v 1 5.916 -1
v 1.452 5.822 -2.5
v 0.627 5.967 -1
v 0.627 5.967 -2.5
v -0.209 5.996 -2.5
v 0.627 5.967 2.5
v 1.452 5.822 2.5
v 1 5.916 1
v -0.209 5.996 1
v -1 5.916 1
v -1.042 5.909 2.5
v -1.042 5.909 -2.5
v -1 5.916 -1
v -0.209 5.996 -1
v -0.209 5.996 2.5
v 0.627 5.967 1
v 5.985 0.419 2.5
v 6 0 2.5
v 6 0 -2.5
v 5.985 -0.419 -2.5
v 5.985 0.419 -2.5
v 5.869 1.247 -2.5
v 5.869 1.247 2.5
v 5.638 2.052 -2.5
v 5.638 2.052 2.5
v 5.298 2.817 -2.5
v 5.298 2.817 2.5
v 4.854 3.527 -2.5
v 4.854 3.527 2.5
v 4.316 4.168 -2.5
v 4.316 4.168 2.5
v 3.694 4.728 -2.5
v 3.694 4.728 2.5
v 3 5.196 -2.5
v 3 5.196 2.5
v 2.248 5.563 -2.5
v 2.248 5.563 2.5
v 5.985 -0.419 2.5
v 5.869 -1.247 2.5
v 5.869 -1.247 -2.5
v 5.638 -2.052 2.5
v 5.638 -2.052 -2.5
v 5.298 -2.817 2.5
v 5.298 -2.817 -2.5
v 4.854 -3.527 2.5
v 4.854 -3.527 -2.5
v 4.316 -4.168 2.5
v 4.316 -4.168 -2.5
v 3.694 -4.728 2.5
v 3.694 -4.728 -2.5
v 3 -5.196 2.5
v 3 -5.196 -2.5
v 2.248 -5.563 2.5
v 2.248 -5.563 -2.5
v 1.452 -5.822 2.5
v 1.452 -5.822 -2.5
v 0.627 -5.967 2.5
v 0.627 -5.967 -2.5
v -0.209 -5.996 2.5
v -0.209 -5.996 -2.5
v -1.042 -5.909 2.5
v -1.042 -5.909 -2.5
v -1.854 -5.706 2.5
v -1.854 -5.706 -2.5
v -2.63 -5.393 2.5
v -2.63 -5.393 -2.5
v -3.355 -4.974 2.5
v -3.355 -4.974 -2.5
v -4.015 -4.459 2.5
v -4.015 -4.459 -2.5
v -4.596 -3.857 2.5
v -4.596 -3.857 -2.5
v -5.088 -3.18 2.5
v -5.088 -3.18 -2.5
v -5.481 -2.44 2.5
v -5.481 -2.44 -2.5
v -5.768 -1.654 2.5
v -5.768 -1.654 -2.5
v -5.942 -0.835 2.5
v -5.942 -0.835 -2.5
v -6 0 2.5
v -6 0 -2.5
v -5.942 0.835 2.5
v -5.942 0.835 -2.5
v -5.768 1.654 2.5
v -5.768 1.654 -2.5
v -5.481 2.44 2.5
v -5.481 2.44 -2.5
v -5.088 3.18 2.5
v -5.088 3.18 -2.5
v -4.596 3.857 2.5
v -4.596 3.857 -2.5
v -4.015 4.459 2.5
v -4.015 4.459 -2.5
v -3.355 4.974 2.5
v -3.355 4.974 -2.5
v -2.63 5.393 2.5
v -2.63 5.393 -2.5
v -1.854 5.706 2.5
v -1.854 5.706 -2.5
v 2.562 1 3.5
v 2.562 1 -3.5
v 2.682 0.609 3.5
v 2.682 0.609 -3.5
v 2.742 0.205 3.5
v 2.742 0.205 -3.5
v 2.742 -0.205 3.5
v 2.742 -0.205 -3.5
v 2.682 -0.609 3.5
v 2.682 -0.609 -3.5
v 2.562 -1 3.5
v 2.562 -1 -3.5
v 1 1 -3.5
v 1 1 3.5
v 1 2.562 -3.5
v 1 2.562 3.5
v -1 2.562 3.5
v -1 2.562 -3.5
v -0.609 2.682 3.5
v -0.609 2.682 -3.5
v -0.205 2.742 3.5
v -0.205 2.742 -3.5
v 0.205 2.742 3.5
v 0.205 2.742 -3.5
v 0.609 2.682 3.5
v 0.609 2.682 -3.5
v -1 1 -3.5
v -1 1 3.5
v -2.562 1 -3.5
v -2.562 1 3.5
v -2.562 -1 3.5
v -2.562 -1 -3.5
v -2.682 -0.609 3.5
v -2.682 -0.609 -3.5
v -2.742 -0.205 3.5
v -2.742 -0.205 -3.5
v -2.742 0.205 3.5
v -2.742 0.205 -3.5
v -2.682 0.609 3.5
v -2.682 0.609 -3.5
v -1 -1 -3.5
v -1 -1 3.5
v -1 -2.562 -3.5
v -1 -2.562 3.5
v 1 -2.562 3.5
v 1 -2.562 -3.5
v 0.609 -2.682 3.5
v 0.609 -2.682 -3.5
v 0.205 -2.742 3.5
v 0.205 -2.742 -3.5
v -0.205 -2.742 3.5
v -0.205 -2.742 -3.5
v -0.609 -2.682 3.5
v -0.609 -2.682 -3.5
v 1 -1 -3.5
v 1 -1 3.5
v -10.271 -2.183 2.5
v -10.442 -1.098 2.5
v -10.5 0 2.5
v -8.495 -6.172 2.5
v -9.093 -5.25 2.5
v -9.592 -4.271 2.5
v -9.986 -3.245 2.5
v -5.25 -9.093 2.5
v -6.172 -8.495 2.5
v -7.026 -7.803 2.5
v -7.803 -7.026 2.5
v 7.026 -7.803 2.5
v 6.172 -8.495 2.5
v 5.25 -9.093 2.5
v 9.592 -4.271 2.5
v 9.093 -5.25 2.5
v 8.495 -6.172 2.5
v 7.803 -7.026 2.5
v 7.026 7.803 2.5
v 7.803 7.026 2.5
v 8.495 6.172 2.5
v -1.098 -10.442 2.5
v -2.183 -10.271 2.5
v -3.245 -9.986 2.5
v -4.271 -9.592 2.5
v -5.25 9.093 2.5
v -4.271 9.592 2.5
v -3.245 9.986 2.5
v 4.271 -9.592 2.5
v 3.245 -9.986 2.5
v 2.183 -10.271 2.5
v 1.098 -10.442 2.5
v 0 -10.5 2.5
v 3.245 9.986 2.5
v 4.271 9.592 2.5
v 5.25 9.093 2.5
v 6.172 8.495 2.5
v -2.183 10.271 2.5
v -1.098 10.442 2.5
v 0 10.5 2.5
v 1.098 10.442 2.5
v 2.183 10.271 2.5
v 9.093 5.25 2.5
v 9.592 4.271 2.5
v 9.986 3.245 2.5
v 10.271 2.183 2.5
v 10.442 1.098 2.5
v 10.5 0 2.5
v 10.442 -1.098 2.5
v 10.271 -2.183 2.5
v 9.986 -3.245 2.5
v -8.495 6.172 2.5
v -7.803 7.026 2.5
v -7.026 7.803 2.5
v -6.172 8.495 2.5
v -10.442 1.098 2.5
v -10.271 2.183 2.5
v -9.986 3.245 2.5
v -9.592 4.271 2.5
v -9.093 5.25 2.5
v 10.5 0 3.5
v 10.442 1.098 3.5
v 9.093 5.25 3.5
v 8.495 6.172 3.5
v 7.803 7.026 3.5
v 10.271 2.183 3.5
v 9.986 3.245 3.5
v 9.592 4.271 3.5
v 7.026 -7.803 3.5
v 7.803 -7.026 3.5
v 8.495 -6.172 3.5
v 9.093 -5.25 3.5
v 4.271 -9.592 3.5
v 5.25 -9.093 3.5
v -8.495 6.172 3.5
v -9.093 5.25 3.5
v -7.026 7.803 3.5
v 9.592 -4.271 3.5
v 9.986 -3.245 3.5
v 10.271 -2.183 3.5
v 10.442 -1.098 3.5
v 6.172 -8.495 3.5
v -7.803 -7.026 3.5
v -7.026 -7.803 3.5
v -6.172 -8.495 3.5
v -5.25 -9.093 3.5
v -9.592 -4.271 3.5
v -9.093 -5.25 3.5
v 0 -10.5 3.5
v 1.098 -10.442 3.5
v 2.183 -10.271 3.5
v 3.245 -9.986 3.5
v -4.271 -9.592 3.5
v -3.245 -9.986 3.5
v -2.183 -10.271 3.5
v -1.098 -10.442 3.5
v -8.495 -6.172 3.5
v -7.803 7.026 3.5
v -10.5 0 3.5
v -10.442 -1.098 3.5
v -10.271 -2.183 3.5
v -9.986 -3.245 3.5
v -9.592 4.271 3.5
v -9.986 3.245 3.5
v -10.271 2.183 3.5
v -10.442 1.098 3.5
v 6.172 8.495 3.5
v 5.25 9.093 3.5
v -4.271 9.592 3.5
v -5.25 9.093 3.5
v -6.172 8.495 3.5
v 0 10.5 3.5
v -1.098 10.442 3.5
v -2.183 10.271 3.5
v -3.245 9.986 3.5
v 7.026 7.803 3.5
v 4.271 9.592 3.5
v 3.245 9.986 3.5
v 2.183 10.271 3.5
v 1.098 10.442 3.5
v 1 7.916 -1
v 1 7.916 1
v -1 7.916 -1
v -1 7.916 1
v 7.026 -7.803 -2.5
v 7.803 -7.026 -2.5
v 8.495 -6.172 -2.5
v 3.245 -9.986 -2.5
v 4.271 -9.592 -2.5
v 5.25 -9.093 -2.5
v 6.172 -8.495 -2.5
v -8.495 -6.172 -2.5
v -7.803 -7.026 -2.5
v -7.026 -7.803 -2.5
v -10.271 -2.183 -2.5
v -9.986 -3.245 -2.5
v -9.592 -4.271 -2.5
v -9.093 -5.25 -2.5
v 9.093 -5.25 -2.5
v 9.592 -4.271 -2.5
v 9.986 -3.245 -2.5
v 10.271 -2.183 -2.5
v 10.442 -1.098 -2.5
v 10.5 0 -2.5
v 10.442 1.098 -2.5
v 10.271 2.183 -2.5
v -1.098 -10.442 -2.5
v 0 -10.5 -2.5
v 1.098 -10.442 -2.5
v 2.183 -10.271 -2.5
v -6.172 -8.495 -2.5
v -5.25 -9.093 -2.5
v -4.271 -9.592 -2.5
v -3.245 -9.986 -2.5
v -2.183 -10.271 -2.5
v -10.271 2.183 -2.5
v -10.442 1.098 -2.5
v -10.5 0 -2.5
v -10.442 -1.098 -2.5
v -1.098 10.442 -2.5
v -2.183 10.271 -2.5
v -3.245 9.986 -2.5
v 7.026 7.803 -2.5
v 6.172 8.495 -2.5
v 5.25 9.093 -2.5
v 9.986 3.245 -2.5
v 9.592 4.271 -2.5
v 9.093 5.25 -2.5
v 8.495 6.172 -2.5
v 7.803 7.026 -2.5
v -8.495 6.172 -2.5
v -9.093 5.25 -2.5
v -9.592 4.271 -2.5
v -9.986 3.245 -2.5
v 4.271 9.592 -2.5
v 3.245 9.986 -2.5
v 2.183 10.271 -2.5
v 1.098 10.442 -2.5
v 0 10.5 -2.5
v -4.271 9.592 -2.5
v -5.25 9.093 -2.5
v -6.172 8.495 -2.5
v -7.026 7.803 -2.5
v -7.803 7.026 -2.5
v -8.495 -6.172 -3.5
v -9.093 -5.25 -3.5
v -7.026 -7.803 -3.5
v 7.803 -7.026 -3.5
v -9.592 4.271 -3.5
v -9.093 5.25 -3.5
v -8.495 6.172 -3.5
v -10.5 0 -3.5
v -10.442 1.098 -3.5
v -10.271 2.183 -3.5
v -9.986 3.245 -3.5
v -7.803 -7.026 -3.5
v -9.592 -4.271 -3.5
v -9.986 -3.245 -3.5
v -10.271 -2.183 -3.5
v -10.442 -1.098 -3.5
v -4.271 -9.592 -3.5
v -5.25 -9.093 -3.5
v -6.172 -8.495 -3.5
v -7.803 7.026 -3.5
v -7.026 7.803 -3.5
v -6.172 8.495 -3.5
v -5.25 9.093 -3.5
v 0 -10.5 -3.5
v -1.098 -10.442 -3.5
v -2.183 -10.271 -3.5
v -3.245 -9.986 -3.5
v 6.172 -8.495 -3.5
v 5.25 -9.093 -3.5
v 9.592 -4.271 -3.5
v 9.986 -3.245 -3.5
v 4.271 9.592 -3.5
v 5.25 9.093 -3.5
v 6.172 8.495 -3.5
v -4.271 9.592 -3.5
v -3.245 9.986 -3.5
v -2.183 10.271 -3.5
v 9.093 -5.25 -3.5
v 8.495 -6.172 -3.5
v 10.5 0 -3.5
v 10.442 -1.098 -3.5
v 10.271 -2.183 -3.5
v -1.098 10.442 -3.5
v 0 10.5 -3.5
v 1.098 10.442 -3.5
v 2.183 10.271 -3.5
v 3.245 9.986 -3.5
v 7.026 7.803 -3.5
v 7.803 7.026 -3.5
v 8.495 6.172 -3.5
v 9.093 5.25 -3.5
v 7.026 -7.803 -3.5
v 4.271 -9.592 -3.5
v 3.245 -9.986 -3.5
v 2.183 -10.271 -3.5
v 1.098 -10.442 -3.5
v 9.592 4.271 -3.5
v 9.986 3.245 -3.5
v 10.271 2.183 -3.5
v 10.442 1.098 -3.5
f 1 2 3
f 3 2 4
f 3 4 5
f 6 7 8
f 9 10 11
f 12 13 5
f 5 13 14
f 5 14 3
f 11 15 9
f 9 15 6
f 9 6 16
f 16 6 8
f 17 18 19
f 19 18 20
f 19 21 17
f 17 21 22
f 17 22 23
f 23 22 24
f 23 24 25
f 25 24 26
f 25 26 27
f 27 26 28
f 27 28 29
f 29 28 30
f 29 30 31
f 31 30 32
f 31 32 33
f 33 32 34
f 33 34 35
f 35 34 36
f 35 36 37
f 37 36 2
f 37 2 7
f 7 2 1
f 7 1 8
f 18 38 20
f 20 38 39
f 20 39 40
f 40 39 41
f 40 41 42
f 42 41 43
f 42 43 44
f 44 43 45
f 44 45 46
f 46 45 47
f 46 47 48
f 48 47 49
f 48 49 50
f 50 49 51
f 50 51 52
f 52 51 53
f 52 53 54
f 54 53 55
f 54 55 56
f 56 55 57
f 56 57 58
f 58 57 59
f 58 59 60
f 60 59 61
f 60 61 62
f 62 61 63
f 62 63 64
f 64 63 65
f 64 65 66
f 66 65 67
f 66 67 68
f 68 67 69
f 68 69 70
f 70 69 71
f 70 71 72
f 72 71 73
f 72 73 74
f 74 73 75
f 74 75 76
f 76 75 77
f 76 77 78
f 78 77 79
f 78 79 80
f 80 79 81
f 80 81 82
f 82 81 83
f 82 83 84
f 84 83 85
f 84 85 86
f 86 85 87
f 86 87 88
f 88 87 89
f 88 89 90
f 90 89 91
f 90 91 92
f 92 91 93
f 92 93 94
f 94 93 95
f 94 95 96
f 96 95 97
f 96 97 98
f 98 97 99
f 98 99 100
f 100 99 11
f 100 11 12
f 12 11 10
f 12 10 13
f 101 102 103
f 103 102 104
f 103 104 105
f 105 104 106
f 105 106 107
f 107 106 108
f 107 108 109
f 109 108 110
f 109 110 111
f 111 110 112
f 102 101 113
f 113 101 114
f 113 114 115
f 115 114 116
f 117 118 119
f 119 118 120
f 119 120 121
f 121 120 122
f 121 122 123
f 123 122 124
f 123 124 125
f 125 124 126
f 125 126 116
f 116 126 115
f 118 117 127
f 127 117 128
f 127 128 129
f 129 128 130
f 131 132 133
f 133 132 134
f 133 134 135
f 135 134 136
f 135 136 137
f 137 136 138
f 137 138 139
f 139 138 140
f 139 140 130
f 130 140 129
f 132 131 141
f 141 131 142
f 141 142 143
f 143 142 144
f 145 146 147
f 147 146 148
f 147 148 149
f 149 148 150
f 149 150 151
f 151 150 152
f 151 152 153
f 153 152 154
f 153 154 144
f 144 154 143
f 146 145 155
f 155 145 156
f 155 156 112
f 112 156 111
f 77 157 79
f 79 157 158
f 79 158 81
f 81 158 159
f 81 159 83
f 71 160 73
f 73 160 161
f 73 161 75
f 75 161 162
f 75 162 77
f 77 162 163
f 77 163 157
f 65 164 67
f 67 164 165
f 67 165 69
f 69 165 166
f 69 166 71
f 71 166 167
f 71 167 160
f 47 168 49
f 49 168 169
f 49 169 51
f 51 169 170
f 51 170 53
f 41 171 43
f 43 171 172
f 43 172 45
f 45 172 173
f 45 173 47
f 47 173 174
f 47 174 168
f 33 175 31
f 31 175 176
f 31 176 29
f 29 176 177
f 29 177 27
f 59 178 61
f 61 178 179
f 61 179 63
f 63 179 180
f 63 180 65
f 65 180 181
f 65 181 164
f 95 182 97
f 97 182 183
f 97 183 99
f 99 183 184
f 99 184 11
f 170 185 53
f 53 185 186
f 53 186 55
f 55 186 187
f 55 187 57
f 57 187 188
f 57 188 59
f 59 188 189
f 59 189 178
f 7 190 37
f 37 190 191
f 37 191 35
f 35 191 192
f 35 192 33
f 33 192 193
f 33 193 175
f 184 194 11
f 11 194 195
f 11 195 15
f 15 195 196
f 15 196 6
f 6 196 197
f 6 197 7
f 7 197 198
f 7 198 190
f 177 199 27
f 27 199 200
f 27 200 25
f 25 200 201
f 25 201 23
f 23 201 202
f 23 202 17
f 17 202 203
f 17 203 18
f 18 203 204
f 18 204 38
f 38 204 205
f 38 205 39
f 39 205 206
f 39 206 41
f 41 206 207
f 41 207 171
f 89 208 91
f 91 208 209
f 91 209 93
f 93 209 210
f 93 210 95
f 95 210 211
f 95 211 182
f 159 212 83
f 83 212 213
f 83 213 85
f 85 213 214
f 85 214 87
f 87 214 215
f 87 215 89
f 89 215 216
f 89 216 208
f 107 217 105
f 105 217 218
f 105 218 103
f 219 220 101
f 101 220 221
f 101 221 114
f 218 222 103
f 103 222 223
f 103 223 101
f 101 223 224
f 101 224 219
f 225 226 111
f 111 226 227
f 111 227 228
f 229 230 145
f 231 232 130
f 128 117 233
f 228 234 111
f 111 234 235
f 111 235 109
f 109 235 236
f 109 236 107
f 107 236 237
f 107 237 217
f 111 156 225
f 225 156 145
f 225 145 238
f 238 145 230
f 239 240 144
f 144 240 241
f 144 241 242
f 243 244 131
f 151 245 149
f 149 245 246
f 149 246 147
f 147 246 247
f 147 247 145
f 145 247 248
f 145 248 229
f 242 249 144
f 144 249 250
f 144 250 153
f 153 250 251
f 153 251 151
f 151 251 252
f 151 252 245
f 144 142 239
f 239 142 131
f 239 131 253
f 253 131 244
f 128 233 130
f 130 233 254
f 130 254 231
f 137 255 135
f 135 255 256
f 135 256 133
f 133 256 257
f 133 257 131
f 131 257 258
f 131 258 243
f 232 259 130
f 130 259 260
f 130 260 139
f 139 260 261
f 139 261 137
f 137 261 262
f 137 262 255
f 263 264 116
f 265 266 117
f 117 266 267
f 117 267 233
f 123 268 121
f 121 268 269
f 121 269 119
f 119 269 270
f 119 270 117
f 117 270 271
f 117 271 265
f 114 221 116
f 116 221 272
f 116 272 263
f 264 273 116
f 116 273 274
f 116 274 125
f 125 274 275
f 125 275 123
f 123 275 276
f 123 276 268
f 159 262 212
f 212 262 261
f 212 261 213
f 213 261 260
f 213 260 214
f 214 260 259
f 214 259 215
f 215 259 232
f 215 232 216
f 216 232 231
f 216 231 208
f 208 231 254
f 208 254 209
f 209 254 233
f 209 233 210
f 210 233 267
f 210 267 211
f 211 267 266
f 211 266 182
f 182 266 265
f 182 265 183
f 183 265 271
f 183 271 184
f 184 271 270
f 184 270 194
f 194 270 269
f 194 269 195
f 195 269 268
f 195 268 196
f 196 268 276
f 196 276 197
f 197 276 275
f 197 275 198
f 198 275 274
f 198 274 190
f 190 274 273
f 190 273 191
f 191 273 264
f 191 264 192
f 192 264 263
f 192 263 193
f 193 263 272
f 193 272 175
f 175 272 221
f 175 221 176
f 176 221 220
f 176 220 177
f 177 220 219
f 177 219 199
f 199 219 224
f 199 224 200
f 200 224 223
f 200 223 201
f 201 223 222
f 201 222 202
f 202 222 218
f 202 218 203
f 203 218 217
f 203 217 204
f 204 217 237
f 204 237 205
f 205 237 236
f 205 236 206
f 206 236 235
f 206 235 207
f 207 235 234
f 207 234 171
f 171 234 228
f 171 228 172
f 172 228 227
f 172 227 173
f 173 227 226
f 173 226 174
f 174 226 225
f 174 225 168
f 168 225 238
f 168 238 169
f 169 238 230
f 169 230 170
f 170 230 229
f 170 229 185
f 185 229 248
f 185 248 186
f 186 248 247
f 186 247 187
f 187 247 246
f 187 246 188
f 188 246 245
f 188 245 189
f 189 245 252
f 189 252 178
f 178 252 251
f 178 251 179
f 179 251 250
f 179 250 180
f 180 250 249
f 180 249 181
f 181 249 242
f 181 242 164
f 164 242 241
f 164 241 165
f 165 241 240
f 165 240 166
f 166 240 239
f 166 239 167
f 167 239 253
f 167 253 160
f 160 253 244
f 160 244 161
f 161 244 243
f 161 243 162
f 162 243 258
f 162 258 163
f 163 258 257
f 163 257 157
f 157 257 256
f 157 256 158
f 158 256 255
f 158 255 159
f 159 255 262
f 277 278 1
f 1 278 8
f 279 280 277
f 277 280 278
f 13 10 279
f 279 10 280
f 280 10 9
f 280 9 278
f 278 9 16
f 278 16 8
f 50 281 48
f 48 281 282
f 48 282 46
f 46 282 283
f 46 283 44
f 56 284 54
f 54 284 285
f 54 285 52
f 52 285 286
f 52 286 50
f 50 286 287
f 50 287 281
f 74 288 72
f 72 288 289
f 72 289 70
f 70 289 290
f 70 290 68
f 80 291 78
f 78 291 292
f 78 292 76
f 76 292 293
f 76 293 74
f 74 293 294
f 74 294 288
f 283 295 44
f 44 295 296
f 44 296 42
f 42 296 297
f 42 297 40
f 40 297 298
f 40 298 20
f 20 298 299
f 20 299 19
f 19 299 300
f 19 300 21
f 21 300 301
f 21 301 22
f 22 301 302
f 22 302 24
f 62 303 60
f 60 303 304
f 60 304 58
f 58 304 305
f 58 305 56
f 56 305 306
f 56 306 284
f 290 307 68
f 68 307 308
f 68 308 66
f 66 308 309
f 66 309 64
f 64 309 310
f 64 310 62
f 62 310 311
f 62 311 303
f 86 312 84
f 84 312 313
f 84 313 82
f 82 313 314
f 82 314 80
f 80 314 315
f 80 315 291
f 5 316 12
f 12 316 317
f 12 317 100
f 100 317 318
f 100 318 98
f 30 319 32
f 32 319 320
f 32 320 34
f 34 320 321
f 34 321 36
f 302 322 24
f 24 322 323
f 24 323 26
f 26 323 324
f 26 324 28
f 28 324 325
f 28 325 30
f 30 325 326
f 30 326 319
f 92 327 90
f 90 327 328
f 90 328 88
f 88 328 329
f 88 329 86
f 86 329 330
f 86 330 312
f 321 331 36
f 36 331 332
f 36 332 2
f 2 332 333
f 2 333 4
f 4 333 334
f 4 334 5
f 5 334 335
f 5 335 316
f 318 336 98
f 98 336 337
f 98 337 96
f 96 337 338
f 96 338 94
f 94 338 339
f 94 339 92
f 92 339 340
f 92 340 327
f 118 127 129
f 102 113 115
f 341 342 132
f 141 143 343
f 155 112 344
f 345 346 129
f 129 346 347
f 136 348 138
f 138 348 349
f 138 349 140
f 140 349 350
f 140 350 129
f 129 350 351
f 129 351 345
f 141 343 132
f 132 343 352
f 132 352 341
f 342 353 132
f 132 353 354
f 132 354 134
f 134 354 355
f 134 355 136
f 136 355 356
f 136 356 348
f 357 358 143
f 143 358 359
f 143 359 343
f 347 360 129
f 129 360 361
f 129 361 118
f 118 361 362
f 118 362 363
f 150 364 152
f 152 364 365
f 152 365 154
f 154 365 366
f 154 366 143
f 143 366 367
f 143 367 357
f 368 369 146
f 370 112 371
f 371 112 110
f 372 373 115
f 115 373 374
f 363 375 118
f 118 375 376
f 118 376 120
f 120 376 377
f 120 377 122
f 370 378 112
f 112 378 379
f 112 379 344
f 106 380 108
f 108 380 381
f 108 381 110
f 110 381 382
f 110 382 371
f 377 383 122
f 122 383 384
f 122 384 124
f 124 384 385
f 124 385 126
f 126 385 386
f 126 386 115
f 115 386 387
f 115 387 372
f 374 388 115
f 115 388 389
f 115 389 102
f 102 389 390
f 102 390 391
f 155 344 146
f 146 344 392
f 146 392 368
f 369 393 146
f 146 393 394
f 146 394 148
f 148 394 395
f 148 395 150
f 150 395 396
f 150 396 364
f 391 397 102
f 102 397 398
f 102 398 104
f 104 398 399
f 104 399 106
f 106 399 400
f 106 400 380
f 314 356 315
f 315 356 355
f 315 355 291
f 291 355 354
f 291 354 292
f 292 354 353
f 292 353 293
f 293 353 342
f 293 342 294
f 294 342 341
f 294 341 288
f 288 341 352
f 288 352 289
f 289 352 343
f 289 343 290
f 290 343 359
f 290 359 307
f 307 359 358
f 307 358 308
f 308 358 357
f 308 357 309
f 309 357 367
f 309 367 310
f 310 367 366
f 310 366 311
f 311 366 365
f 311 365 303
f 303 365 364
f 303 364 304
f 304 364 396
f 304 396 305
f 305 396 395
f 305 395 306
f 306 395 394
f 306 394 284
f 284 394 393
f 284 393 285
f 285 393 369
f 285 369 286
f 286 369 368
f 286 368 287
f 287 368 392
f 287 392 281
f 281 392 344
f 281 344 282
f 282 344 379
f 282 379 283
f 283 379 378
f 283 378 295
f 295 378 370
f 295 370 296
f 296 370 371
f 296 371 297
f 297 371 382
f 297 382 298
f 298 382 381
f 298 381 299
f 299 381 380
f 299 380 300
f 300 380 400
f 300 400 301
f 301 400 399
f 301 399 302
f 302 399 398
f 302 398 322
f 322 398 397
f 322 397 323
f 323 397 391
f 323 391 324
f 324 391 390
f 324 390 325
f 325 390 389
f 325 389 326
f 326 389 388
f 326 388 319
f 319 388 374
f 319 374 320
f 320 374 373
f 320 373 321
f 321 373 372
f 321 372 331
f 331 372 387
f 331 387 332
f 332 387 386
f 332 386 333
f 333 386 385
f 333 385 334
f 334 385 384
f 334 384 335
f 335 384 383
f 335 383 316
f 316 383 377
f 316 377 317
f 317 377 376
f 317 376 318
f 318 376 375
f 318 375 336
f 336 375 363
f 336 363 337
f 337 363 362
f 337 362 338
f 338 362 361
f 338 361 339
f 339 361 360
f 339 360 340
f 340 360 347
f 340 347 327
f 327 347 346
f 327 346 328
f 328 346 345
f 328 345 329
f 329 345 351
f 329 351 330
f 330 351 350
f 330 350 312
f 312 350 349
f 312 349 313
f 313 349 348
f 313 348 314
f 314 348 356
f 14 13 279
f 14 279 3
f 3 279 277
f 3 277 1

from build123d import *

# Parameters (mm, degrees)
ESQUISSE1_R        = 6
BOSS_EXTRU_1_DEPTH = 2.5
ESQUISSE2_R        = 10.5
BOSS_EXTRU_4_DEPTH = 1
ESQUISSE3_W        = 2
ESQUISSE3_H        = 2
BOSS_EXTRU_5_DEPTH = 1


with BuildPart() as part:
    # Esquisse1 → Boss.-Extru.1 (new body)
    with BuildSketch(Plane.XY):
        Circle(ESQUISSE1_R)
        with BuildLine():
            Line((-2.561737691, 1), (-1, 1))
            Line((-1, 1), (-1, 2.561737691))
            ThreePointArc((-1, 2.561737691), (0, 2.75), (1, 2.561737691))
            Line((1, 2.561737691), (1, 1))
            Line((1, 1), (2.561737691, 1))
            ThreePointArc((2.561737691, 1), (2.75, 0), (2.561737691, -1))
            Line((2.561737691, -1), (1, -1))
            Line((1, -1), (1, -2.561737691))
            ThreePointArc((1, -2.561737691), (0, -2.75), (-1, -2.561737691))
            Line((-1, -2.561737691), (-1, -1))
            Line((-1, -1), (-2.561737691, -1))
            ThreePointArc((-2.561737691, -1), (-2.75, 0), (-2.561737691, 1))
        make_face(mode=Mode.SUBTRACT)
    boss_extru_1 = extrude(amount=BOSS_EXTRU_1_DEPTH)

    # Esquisse2 → Boss.-Extru.4 (add)
    with BuildSketch(Plane.XY.offset(2.5)):
        Circle(ESQUISSE2_R)
        with BuildLine():
            Line((-1, 2.561737691), (-1, 1))
            Line((-1, 1), (-2.561737691, 1))
            ThreePointArc((-2.561737691, 1), (-2.75, 0), (-2.561737691, -1))
            Line((-2.561737691, -1), (-1, -1))
            Line((-1, -1), (-1, -2.561737691))
            ThreePointArc((-1, -2.561737691), (0, -2.75), (1, -2.561737691))
            Line((1, -2.561737691), (1, -1))
            Line((1, -1), (2.561737691, -1))
            ThreePointArc((2.561737691, -1), (2.75, 0), (2.561737691, 1))
            Line((2.561737691, 1), (1, 1))
            Line((1, 1), (1, 2.561737691))
            ThreePointArc((1, 2.561737691), (0, 2.75), (-1, 2.561737691))
        make_face(mode=Mode.SUBTRACT)
    boss_extru_4 = extrude(amount=BOSS_EXTRU_4_DEPTH)

    # Esquisse3 → Boss.-Extru.5 (add)
    with BuildSketch(Plane(origin=(0, 0, 0), x_dir=(-1, 0, 0), z_dir=(0, 0, -1))):
        with Locations((0, 6.916079783)):
            Rectangle(ESQUISSE3_W, ESQUISSE3_H)
    boss_extru_5 = extrude(amount=-BOSS_EXTRU_5_DEPTH)


with BuildPart() as sym_trie1_1:
    # Symétrie1: Boss.-Extru.1, Boss.-Extru.4, Boss.-Extru.5 across Front Plane
    add(boss_extru_1.mirror(Plane.XY))
    add(boss_extru_4.mirror(Plane.XY))
    add(boss_extru_5.mirror(Plane.XY))


with BuildPart() as part_1:
    add(part.part)

    # Symétrie1 united with what the copies to: union Symétrie1_1
    add(sym_trie1_1.part)


solid = part_1.part
